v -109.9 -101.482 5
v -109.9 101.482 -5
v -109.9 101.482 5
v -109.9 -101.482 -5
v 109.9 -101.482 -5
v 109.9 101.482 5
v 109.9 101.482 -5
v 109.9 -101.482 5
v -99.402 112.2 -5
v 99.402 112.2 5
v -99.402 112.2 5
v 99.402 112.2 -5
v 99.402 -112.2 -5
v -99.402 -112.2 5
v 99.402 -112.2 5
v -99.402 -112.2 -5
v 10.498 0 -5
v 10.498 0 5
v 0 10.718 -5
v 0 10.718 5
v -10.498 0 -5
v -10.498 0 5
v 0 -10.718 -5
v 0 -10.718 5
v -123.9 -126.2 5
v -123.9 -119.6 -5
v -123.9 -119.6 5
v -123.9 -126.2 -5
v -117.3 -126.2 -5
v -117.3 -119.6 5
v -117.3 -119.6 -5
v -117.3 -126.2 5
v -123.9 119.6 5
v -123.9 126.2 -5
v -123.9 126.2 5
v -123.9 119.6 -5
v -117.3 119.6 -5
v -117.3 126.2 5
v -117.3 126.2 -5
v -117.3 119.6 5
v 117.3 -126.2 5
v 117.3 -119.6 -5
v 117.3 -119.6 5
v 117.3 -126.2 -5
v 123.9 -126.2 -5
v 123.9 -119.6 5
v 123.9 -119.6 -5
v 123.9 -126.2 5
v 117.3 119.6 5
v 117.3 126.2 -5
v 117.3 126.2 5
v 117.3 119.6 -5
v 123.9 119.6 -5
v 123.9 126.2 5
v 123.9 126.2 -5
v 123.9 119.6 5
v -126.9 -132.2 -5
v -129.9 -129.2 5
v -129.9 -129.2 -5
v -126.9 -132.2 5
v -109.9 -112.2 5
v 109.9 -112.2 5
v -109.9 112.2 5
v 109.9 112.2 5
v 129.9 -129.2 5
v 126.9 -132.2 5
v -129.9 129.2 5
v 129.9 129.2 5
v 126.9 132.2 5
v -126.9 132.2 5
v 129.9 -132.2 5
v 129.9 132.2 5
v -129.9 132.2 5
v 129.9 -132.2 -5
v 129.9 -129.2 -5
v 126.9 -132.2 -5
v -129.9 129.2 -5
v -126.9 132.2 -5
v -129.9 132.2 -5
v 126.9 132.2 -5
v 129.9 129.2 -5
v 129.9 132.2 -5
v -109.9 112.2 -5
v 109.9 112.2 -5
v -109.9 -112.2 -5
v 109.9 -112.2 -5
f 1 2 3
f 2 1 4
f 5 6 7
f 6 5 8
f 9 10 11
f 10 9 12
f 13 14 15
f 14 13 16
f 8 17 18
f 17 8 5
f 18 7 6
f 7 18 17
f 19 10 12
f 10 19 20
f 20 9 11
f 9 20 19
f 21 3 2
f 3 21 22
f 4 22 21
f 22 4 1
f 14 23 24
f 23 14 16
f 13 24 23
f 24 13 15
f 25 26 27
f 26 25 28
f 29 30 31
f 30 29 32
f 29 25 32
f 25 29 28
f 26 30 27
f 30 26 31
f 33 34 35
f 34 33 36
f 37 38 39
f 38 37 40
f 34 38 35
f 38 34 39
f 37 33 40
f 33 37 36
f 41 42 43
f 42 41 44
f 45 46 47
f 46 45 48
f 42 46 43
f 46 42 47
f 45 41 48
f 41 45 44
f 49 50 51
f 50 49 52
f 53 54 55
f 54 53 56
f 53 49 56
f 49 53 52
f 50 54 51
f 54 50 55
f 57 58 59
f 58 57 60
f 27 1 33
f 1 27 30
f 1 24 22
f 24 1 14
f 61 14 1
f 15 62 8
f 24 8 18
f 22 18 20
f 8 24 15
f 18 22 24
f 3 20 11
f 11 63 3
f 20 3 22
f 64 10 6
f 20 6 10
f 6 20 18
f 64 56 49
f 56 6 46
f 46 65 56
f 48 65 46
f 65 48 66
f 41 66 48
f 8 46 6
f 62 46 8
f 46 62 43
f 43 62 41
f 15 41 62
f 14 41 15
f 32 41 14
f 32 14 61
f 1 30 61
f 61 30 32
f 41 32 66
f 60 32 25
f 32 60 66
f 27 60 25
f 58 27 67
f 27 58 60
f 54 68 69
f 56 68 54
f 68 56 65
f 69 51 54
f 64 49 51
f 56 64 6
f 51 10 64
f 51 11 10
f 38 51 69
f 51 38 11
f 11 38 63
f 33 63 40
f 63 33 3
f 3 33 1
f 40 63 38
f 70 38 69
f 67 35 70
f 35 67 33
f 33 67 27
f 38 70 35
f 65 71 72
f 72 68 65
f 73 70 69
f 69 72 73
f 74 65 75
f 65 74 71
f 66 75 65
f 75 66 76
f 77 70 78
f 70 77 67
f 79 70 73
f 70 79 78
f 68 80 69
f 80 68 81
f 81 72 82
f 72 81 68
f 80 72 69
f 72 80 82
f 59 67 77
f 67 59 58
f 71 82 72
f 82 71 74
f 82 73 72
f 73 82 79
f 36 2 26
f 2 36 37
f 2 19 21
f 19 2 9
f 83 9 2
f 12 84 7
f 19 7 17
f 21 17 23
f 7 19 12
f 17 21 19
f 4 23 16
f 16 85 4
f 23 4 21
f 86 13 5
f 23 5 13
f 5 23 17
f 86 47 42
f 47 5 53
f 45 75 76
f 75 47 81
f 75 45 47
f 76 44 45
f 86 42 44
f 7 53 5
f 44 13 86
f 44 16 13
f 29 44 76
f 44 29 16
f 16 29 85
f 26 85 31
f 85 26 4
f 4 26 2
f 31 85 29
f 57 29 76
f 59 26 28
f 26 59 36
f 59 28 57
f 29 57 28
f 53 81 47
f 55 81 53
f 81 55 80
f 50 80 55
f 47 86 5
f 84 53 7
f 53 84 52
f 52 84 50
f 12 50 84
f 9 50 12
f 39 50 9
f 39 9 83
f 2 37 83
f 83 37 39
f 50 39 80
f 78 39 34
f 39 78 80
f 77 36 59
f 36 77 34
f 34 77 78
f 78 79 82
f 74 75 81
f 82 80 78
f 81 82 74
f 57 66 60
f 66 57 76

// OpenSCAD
// WheresDat — Shelf unit end caps (top + bottom), carbon-rod corner posts
//
// Structural approach (see SPEC.md, "Irregular-size kit boxes get open
// shelves"): 4x solid carbon fiber square rod corner posts, real sourced
// size 6x6x420mm. Caps consume 10mm of post length at each end (420mm -
// 10 - 10 = 400mm usable post span left for shelves to slide on).
// One cap design serves both top and bottom — no differentiation
// requested yet.
//
// Not yet rendered/validated (no OpenSCAD CLI in this environment) —
// open in the actual app before printing, same caveat as
// hardware/sortimo_tray.scad.

/* [Printer] */
// Real printer bed is 300x300mm (see sortimo_tray.scad), but the target
// here is 280mm, not 300 — large flat prints like this need a brim for
// bed adhesion (corners lift otherwise), and a brim needs room outside
// the part's own footprint. Designing to the raw bed limit would leave
// no space for one.
max_footprint = 280; // mm

/* [Post geometry — real, sourced] */
post_size       = 6;   // mm, square cross-section (6x6x420mm carbon rod)
post_clearance  = 0.3; // mm, per-side fit clearance so the post slides/press-fits into its socket
cap_thickness   = 10;  // mm — "sacrifice 10mm top and bottom for the caps"

/* [Footprint — sized to hold 2 stacked 2x4 sortimo_tray.scad trays] */
// Derived 2026-09-07 from the tray's real dimensions (tray_x=219.2mm,
// tray_y=114.6mm at current defaults) for the "one shelf holds 2 trays,
// deep enough" layout: two trays stacked FRONT-TO-BACK (doubling the
// 114.6mm depth axis), not side-by-side left-right (doubling the 219.2mm
// axis instead) — the left-right layout would need a ~438mm-wide cap
// plate, well past the 280mm max_footprint above, so it's not printable
// as one piece. If side-by-side is actually what's wanted, this needs a
// split-cap design instead (same idea as sortimo_tray.scad's two-piece
// tray), not just different numbers here.
//
// First pass at this (post_spacing 230x240) still didn't actually fit
// two real trays laid over it — two things drove that: the fit
// clearance was razor-thin (2mm/side, near zero margin for print
// variance), and it didn't budget any depth at all for the front
// stopper rod below, which eats into the same Y axis the trays sit in.
// Widened for real here rather than nudged, since there was ~20mm of
// unused headroom under max_footprint going to waste anyway. Still not
// test-fit against a real print — two misses in a row on this number is
// reason enough to actually verify before committing to the full cap.
side_edge_clearance = 8;      // mm, per side (left/right, X axis) — general drop-in margin, not rod-related
back_edge_clearance = 8;      // mm, back side (Y axis) — general drop-in margin
front_rod_size      = 2;      // mm, the 2mm square carbon rod glued across the front
front_rod_clearance = 0.6;    // mm, total (0.3/side) so the rod seats without binding
// front_rod_depth is space reserved on the front (Y axis) for the rod to
// sit as a stopper right at the tray's front edge — the actual socket/
// groove that holds it is a feature of the shelf panel (not yet built),
// this just makes sure the overall footprint has room for it.
front_rod_depth     = front_rod_size + front_rod_clearance;

post_spacing_x = 219.2 + post_size + 2 * side_edge_clearance; // one tray's width + margin both sides
post_spacing_y = 2 * 114.6 + post_size + back_edge_clearance + front_rod_depth; // 2 stacked trays' depth + back margin + front rod allowance

/* [Frame + X-girder — replaces the old honeycomb lattice] */
// The honeycomb produced a lot of small print-path corners (every hex
// cell is 6 of them) — slow and a lot of direction-change stress points
// for not much structural benefit. Solid frame around the perimeter plus
// two diagonal beams crossing in the center is far simpler to print and
// still ties the whole plate together.
min_wall     = 3;  // mm — the one hard constraint: "at least 3mm thick for support"
frame_width  = 20; // mm, solid border width measured in from the plate's outer edge
girder_width = 15; // mm, width of each diagonal beam

/* [Full-height corner chamfer] */
// 2026-09-08 revision: full vertical edge top to bottom, not just a
// base-relief cut — different from the tray/box treatment on purpose.
chamfer_size   = 3; // mm, cut along each edge meeting at the corner
chamfer_height = cap_thickness; // mm — the whole plate thickness, not just the base

// ---------------------------------------------------------------------
// Derived geometry
// ---------------------------------------------------------------------

// Keeps the post sockets clear of the plate's own outer edge — driven by
// min_wall, not picked independently.
edge_margin = min_wall + post_size / 2 + post_clearance;

plate_x = post_spacing_x + post_size + 2 * edge_margin;
plate_y = post_spacing_y + post_size + 2 * edge_margin;

assert(plate_x <= max_footprint,
    str("Cap X (", plate_x, "mm) exceeds max_footprint (", max_footprint, "mm) — leaves no room for a brim; trim post_spacing_x"));
assert(plate_y <= max_footprint,
    str("Cap Y (", plate_y, "mm) exceeds max_footprint (", max_footprint, "mm) — leaves no room for a brim; trim post_spacing_y"));

module post_socket(x, y) {
    // Through-slot, not a blind pocket — "10mm tall slots"
    translate([x, y, 0])
        cube([post_size + 2 * post_clearance, post_size + 2 * post_clearance, cap_thickness + 1], center = true);
}

// A single straight beam of constant width from p1 to p2, in the XY
// plane — used to build each diagonal of the X girder as an exact
// rectangle rather than a hull/approximation.
module beam(p1, p2, width) {
    dir = p2 - p1;
    len = norm(dir);
    unit = dir / len;
    perp = [-unit[1], unit[0]] * width / 2;
    polygon([p1 + perp, p2 + perp, p2 - perp, p1 - perp]);
}

module x_girder(width, height) {
    linear_extrude(height = cap_thickness + 1, center = true) {
        beam([-width / 2, -height / 2], [width / 2, height / 2], girder_width);
        beam([-width / 2, height / 2], [width / 2, -height / 2], girder_width);
    }
}

// Everything inside the frame gets removed except the X girder, which
// spans corner-to-corner of the interior rectangle and so ties directly
// into the solid frame at both ends of each beam.
module frame_interior_cut(width, height) {
    difference() {
        cube([width, height, cap_thickness + 1], center = true);
        x_girder(width, height);
    }
}

module base_chamfer_cut(width, depth, size, height) {
    corners = [[0, 0], [width, 0], [0, depth], [width, depth]];
    for (c = corners) {
        dx = (c[0] == 0) ? 1 : -1;
        dy = (c[1] == 0) ? 1 : -1;
        translate([c[0], c[1], -0.5])
            linear_extrude(height = height + 0.5)
                polygon([[0, 0], [dx * size, 0], [0, dy * size]]);
    }
}

module end_cap() {
    difference() {
        cube([plate_x, plate_y, cap_thickness], center = true);

        frame_interior_cut(plate_x - 2 * frame_width, plate_y - 2 * frame_width);

        for (x = [-post_spacing_x / 2, post_spacing_x / 2])
            for (y = [-post_spacing_y / 2, post_spacing_y / 2])
                post_socket(x, y);

        // Same corner-relief cut as the other hardware files — this
        // module works in a 0,0-origin local frame, so shift into the
        // centered plate's coordinate space rather than changing it.
        translate([-plate_x / 2, -plate_y / 2, -cap_thickness / 2])
            base_chamfer_cut(plate_x, plate_y, chamfer_size, chamfer_height);
    }
}

end_cap();
